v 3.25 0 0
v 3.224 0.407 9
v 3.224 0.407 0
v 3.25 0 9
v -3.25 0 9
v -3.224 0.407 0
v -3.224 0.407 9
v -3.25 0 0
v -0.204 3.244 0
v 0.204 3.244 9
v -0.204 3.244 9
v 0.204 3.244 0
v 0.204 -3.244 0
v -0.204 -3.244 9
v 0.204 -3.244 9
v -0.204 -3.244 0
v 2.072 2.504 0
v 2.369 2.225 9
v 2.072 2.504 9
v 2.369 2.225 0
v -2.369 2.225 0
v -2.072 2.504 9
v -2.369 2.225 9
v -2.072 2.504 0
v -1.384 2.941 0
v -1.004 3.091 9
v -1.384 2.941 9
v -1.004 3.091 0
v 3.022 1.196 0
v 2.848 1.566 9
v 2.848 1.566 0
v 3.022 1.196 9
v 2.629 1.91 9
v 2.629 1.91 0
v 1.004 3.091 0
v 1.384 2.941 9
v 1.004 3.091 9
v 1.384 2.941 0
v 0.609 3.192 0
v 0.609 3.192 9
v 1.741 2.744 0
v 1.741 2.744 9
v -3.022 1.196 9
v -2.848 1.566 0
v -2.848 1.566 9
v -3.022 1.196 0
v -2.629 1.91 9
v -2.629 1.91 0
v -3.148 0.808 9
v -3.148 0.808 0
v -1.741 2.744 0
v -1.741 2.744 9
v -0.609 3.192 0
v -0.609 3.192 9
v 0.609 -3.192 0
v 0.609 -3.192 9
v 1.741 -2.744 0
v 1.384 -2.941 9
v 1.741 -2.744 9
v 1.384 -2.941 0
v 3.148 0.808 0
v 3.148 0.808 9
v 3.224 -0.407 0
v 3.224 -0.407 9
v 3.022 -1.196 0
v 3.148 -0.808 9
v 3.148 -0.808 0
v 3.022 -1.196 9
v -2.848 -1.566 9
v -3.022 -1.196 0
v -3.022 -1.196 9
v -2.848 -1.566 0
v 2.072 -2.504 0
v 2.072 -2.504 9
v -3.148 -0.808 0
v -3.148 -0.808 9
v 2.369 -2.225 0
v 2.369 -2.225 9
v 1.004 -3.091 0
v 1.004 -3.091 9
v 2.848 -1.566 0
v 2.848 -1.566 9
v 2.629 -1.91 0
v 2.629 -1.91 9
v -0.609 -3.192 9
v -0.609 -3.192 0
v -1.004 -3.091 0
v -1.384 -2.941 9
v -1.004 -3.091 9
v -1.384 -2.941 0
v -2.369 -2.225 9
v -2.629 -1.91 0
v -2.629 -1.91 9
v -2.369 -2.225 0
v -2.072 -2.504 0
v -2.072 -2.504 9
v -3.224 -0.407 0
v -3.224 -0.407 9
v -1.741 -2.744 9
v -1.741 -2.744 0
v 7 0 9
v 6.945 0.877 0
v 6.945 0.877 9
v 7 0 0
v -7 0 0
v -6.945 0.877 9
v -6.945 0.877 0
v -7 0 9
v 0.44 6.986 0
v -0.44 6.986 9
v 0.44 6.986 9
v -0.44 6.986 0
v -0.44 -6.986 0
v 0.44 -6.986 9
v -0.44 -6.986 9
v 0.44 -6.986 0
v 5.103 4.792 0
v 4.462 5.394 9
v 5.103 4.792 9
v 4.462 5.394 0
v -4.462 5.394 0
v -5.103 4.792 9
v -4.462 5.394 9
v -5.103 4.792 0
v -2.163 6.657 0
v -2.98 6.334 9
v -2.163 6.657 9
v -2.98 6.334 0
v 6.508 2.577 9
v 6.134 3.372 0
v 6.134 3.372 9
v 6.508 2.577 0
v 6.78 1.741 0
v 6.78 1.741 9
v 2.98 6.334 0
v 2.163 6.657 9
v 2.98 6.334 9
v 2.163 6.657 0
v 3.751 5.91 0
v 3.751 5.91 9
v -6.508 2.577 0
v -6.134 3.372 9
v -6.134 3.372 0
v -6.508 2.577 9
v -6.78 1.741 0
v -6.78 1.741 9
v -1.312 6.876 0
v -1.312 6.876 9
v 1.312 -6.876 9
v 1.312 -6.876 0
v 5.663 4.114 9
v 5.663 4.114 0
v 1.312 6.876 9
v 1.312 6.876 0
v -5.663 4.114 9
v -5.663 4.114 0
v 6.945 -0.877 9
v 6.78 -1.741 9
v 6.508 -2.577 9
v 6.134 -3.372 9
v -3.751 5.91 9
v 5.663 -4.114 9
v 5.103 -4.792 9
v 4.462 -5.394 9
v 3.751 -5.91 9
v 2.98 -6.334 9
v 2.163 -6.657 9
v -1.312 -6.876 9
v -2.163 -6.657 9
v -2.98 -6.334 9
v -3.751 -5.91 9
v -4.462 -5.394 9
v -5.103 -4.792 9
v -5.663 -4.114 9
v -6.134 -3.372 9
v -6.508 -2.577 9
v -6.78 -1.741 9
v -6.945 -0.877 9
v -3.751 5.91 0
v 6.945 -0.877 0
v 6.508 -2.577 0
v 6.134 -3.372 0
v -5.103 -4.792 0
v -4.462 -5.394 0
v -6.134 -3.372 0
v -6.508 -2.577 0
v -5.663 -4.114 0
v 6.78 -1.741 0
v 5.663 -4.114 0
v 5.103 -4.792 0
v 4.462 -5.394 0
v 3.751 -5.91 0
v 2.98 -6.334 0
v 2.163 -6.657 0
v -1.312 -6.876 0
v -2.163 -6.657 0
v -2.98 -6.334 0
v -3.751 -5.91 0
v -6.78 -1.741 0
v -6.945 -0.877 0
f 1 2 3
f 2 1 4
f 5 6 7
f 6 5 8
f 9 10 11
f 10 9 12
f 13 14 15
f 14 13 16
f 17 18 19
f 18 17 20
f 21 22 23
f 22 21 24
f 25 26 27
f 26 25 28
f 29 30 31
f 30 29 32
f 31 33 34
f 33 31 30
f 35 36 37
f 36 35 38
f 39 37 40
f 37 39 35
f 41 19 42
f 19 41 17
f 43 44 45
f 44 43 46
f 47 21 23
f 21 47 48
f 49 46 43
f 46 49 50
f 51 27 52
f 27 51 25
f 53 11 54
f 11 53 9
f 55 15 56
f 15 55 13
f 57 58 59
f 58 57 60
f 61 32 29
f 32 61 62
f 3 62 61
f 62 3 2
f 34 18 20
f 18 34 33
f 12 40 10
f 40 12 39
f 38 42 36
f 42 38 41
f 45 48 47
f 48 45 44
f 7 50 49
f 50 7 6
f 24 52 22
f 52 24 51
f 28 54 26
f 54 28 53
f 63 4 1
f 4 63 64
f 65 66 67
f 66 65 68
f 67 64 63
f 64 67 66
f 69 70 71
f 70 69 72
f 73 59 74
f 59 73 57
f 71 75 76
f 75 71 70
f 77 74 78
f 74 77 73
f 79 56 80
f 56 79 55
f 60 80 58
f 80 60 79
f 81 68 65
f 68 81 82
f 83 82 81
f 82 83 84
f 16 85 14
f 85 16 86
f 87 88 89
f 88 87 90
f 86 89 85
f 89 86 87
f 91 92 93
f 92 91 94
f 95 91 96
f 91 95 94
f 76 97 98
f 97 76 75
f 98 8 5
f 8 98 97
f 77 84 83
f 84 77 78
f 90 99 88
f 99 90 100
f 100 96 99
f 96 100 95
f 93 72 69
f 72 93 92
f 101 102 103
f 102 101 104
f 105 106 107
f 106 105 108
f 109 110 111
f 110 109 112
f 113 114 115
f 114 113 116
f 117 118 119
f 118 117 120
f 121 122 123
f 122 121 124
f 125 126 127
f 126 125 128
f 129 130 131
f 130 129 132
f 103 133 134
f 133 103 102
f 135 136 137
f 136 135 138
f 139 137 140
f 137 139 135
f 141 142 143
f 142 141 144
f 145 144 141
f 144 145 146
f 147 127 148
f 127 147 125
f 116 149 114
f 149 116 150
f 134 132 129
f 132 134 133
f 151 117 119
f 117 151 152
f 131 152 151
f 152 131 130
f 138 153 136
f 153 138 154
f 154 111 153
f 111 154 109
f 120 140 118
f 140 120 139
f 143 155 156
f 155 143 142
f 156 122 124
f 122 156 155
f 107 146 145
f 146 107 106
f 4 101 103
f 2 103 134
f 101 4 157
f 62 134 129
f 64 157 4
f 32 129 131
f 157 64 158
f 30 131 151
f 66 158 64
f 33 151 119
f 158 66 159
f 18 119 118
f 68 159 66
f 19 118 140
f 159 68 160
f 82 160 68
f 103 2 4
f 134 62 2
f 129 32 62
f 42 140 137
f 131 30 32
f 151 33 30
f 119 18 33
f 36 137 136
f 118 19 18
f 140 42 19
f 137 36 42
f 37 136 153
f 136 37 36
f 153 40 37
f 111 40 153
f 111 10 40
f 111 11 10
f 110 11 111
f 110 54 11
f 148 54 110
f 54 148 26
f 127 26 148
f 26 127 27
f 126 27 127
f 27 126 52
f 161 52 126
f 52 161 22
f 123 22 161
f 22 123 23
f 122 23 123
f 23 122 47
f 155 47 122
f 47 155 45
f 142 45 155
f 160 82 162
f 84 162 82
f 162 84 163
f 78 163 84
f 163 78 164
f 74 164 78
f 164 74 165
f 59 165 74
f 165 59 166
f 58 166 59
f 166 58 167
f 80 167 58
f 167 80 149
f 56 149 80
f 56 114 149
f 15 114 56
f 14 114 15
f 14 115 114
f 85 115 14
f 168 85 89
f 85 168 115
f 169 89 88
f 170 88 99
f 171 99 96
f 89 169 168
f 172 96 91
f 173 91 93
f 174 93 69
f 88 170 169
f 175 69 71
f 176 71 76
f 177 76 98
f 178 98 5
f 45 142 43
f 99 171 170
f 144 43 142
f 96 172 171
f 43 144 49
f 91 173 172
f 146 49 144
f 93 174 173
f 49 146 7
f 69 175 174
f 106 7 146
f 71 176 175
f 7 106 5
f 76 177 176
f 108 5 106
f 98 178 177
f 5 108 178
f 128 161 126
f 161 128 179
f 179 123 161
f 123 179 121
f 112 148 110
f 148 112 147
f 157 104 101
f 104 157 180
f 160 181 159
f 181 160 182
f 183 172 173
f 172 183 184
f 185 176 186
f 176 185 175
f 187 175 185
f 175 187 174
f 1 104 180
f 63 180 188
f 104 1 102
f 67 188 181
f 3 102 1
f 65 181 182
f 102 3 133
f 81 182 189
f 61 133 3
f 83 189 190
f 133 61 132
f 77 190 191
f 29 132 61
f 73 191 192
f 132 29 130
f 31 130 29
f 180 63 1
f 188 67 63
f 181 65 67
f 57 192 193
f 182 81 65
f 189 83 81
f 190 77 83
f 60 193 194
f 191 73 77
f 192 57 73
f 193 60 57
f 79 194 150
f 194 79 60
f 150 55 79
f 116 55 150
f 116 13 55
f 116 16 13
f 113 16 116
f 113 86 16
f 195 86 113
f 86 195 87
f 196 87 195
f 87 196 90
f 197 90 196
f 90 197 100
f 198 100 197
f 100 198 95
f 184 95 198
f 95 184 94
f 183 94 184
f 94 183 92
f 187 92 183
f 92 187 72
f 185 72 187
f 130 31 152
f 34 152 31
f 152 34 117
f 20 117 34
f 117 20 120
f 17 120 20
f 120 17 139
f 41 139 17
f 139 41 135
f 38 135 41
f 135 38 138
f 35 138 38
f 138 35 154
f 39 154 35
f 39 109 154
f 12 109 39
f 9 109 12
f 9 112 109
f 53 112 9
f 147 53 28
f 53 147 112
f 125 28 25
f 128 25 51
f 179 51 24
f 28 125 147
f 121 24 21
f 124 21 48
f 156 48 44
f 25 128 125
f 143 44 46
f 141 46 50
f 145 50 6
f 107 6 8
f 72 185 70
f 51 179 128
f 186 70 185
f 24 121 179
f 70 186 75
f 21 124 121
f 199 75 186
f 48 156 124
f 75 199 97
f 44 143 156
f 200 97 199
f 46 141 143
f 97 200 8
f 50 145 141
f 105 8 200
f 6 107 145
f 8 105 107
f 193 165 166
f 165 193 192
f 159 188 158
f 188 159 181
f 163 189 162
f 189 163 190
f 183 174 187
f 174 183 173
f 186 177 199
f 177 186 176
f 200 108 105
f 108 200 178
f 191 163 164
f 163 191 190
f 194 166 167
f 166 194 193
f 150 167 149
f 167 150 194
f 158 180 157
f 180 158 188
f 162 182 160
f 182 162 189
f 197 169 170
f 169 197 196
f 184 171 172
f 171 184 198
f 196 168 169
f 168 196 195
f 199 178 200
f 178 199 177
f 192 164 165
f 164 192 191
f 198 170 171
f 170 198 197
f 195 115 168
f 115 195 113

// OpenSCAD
$fn = 50;


difference() {
	union() {
		cylinder(h = 9, r = 7.0000000000);
	}
	union() {
		#translate(v = [0.0000000000, 0.0000000000, -100.0000000000]) {
			cylinder(h = 200, r = 3.2500000000);
		}
		#translate(v = [0.0000000000, 0.0000000000, -100.0000000000]) {
			cylinder(h = 200, r = 3.2500000000);
		}
		#translate(v = [0.0000000000, 0.0000000000, -100.0000000000]) {
			cylinder(h = 200, r = 3.2500000000);
		}
		#translate(v = [0.0000000000, 0.0000000000, -100.0000000000]) {
			cylinder(h = 200, r = 3.2500000000);
		}
		#cylinder(h = 9, r = 3.0000000000);
	}
}
